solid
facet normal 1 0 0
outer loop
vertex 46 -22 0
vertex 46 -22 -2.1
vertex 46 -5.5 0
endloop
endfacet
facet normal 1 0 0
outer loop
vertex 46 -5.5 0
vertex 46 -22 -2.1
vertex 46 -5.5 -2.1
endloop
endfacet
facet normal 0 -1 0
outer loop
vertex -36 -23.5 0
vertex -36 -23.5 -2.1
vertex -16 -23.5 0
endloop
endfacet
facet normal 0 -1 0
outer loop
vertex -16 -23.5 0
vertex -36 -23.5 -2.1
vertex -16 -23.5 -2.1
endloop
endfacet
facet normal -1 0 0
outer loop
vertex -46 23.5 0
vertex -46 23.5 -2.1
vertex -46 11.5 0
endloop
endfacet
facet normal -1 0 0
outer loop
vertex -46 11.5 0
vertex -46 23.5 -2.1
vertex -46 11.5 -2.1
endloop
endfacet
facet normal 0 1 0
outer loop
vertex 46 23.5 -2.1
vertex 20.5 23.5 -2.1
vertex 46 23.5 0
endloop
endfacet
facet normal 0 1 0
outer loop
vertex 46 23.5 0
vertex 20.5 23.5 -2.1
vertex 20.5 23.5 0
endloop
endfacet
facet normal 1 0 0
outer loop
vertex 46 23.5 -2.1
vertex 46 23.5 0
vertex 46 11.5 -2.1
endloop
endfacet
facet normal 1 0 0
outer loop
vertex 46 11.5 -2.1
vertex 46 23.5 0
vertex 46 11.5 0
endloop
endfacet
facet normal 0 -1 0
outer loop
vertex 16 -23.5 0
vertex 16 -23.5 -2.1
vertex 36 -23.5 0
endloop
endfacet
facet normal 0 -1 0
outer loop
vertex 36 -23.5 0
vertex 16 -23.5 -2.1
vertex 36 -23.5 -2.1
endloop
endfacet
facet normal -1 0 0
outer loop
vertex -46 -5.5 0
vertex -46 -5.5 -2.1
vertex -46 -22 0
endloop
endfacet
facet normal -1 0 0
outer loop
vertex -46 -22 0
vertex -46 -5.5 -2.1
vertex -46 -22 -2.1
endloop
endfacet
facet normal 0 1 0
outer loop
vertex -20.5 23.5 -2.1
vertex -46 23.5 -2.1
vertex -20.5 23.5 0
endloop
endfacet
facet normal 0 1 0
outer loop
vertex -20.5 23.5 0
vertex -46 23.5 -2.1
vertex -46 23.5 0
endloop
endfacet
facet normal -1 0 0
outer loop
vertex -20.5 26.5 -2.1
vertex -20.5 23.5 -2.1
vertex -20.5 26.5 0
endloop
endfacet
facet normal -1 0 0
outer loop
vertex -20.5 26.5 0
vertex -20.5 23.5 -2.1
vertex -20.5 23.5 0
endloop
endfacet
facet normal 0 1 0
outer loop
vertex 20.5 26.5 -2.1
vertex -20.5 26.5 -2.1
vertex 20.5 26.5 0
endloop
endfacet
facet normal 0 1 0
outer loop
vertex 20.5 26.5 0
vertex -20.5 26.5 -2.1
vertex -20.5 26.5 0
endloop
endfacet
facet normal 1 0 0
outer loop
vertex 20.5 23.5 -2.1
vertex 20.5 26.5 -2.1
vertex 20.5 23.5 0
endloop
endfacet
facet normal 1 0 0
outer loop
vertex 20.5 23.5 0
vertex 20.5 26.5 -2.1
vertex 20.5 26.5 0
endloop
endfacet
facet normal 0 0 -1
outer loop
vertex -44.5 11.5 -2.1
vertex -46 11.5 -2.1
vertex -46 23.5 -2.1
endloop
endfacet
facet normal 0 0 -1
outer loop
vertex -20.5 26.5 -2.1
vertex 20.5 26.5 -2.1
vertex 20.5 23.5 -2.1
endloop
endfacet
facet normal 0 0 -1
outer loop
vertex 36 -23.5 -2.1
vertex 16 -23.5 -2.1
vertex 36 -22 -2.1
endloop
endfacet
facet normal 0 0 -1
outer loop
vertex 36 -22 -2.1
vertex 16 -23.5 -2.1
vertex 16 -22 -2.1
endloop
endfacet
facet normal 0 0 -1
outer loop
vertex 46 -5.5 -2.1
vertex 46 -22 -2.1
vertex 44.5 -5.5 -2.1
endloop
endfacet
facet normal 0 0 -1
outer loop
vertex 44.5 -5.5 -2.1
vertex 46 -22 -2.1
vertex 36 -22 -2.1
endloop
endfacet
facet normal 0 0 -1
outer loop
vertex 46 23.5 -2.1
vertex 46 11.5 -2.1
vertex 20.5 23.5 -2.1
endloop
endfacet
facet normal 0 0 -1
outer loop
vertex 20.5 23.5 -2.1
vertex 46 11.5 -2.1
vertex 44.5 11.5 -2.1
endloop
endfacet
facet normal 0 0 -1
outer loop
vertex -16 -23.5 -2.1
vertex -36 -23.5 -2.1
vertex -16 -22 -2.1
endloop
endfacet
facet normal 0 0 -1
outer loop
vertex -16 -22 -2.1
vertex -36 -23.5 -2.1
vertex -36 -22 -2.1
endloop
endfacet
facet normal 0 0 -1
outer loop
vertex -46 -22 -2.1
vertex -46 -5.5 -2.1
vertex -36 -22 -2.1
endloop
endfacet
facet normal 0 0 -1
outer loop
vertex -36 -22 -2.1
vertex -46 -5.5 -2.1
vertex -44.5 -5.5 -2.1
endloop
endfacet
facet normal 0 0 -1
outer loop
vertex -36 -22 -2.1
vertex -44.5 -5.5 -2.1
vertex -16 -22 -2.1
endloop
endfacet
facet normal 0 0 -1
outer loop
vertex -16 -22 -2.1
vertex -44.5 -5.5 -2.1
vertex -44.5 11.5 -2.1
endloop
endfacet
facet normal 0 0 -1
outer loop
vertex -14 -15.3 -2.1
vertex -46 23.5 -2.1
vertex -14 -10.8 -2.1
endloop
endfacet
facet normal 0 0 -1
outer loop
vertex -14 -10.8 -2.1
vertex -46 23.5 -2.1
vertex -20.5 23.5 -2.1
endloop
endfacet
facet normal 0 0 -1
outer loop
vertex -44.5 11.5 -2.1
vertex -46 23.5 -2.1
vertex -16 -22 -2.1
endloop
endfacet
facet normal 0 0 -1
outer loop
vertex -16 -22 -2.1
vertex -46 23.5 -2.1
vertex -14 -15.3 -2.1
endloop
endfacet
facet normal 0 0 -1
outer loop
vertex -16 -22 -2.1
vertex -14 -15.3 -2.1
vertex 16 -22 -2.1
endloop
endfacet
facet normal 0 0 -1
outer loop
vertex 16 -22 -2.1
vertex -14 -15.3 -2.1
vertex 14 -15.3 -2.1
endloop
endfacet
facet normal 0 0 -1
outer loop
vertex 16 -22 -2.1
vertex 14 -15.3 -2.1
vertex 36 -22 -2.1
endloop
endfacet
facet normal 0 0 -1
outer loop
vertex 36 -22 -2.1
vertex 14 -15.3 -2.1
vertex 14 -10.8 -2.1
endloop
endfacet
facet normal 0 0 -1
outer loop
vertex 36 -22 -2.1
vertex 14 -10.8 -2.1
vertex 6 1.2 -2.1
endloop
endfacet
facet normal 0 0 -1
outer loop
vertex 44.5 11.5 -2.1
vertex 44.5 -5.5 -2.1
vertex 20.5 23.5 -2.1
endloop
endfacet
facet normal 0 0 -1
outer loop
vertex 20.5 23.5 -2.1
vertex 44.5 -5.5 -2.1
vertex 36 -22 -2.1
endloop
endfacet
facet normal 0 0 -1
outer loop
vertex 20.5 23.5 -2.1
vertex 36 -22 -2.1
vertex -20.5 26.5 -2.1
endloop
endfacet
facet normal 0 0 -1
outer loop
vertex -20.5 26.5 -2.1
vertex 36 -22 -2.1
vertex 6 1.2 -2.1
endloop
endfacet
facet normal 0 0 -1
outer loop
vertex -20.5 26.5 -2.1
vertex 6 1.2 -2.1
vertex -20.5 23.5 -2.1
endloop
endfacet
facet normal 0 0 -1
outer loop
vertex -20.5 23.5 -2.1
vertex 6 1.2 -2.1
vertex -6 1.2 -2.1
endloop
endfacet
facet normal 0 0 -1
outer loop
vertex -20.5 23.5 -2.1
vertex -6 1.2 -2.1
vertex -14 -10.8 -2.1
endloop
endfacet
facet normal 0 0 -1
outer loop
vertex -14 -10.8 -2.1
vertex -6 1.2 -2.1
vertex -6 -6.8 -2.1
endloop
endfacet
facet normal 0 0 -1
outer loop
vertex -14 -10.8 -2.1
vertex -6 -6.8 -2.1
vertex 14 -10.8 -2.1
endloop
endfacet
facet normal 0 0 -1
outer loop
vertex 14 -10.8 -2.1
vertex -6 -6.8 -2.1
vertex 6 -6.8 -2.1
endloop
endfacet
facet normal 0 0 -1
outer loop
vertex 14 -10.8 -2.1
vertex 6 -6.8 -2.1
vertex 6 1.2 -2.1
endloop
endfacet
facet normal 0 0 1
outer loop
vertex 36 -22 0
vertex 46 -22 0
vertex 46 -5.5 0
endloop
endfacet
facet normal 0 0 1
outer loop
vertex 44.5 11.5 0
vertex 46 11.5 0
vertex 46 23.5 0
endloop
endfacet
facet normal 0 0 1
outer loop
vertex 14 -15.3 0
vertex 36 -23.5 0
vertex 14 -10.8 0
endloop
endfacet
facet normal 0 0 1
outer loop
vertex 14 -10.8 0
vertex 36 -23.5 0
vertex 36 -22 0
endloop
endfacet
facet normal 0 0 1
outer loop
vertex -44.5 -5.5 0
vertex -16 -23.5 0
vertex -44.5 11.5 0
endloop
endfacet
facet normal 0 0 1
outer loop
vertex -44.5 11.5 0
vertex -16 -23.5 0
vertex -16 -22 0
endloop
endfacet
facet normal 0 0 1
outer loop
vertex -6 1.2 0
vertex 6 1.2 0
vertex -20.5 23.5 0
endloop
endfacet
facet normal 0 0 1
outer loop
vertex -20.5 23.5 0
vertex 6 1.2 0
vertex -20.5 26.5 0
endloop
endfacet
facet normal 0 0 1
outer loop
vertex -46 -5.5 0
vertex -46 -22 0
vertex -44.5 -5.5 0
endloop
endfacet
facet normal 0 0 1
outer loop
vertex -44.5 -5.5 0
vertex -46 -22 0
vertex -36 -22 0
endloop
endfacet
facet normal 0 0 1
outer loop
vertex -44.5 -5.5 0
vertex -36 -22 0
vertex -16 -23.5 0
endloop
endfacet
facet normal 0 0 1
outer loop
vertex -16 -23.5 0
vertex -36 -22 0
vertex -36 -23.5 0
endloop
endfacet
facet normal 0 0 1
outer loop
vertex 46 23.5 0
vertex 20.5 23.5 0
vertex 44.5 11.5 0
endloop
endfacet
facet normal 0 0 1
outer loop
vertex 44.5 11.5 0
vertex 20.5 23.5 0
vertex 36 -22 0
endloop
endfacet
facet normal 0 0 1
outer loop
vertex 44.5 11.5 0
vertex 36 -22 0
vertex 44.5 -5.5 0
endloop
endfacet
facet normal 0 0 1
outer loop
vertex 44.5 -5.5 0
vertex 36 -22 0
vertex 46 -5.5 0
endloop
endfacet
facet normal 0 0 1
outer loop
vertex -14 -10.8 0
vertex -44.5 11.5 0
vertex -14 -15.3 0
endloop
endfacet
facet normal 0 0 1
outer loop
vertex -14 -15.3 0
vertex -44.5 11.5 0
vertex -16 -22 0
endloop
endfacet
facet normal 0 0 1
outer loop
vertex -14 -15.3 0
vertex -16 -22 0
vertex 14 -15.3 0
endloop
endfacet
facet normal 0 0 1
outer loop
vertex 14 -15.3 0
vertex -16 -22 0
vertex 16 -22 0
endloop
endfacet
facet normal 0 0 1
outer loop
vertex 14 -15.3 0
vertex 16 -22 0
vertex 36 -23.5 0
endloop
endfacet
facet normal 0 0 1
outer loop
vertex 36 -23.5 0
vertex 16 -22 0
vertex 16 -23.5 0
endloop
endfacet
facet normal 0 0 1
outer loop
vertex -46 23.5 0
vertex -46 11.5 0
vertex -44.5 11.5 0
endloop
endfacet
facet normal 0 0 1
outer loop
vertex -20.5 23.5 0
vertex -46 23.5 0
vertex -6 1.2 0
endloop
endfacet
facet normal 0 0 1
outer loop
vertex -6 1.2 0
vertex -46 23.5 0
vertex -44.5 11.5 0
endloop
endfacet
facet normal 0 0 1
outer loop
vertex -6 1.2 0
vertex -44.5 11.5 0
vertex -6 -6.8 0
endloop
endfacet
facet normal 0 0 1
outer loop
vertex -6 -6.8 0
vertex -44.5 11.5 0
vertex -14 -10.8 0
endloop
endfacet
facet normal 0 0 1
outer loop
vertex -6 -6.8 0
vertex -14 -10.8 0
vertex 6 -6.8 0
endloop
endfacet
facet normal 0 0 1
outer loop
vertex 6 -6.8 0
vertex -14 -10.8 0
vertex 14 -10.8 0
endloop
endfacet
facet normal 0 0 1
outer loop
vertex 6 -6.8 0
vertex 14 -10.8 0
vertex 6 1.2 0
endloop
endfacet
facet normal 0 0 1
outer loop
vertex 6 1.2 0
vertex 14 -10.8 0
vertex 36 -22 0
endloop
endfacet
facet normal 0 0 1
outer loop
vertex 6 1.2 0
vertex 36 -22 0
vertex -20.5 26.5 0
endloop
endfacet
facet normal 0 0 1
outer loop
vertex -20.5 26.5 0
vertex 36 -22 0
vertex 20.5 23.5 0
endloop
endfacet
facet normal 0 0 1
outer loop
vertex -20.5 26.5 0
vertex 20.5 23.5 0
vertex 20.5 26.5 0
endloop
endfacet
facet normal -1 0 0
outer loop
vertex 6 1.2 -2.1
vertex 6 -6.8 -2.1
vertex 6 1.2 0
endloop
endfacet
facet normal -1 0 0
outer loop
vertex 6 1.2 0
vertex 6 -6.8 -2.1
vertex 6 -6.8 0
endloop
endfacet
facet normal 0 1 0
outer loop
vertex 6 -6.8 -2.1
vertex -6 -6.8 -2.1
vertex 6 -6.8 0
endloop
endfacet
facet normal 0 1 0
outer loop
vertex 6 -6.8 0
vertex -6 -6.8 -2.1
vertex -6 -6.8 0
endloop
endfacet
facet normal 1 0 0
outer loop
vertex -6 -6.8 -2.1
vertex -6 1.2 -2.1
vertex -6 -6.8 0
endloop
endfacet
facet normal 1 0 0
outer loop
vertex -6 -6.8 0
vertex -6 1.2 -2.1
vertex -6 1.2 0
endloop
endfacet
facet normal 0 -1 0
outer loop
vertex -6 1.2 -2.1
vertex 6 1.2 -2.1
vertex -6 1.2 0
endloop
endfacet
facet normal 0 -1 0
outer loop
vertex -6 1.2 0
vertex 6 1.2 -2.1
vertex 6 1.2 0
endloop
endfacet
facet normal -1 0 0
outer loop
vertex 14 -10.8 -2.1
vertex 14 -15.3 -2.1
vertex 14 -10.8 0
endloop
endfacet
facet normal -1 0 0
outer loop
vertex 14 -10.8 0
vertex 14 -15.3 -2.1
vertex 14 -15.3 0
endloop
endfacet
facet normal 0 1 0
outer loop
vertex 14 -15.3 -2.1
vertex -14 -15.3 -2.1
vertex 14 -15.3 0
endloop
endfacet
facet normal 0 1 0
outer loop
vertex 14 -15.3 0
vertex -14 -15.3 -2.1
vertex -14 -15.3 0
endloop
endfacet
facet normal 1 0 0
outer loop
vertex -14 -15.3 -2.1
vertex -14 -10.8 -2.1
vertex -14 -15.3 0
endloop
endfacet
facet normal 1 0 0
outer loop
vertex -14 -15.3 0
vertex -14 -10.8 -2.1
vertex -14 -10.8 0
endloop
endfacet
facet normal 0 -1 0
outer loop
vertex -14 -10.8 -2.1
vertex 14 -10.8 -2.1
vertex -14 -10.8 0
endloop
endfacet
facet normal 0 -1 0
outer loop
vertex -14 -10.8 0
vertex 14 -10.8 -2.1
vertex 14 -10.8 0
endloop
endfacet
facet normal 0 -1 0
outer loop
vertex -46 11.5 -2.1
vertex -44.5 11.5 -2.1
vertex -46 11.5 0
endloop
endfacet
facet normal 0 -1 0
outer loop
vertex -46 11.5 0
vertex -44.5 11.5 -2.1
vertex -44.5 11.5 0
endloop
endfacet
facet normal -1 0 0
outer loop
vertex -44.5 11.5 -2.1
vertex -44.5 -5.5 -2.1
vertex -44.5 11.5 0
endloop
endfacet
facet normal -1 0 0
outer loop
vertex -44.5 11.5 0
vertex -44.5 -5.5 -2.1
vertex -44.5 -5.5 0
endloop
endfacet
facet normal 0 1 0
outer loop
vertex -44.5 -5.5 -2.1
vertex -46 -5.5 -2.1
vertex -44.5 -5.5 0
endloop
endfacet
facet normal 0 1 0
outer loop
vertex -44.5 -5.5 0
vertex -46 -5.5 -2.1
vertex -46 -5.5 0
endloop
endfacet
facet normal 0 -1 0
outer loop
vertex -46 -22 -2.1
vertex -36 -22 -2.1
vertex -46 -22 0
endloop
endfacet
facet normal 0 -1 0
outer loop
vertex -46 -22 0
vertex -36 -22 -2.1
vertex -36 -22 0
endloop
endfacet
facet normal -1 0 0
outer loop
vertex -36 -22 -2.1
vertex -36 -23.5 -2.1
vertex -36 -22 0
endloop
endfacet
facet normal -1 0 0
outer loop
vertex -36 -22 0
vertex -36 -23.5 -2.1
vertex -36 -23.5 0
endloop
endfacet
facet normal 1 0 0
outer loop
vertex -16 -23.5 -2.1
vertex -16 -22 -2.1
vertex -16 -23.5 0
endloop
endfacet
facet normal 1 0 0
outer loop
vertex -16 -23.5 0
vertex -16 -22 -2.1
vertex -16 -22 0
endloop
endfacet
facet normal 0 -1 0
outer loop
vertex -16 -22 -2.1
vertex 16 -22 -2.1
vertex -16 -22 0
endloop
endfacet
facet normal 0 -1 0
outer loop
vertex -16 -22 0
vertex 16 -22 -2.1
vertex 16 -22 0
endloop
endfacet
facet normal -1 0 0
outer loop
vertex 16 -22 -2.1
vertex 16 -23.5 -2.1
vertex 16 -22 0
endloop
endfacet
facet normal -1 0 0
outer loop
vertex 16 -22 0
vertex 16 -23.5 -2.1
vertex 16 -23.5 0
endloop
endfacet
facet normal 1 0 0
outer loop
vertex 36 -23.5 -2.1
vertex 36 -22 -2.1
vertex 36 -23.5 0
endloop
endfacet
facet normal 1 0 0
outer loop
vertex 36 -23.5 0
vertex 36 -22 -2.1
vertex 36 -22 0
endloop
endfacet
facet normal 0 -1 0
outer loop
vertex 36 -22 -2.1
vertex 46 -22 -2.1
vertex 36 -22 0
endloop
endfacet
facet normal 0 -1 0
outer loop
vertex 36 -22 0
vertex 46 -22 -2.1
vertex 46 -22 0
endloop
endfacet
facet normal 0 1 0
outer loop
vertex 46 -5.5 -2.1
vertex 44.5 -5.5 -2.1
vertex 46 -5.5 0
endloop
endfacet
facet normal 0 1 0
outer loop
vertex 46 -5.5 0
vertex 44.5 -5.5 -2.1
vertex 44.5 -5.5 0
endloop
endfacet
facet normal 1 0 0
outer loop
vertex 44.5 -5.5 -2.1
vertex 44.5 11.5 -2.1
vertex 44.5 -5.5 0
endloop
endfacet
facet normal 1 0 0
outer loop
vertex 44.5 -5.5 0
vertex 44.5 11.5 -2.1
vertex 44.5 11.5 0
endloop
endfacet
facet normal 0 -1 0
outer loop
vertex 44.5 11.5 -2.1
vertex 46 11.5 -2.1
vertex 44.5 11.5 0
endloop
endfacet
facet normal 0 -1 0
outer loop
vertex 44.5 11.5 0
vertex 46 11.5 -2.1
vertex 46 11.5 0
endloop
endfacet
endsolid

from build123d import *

# Parameters (mm, degrees)
BOSS_EXTRUDE1_DEPTH = 2.1
SKETCH2_W           = 28
SKETCH2_H           = 4.5
SKETCH2_W_2         = 12
SKETCH2_H_2         = 8
CUT_EXTRUDE2_DEPTH  = 54.128711635
SKETCH3_W           = 1.5
SKETCH3_H           = 17
SKETCH3_W_2         = 10
SKETCH3_H_2         = 1.5
SKETCH3_W_3         = 32
CUT_EXTRUDE3_DEPTH  = 54.128711635


with BuildPart() as part:
    # Sketch1 → Boss-Extrude1 (new body)
    with BuildSketch(Plane.XY):
        Polygon((-46, 23.5), (-20.5, 23.5), (-20.5, 26.5), (20.5, 26.5), (20.5, 23.5), (46, 23.5), (46, -23.5), (-46, -23.5), align=None)
    extrude(amount=-BOSS_EXTRUDE1_DEPTH)

    # Sketch2 → Cut-Extrude2 (cut, through all)
    with BuildSketch(Plane.XY):
        with Locations((0, -13.05)):
            Rectangle(SKETCH2_W, SKETCH2_H)
        with Locations((0, -2.8)):
            Rectangle(SKETCH2_W_2, SKETCH2_H_2)
    extrude(amount=-CUT_EXTRUDE2_DEPTH, mode=Mode.SUBTRACT)

    # Sketch3 → Cut-Extrude3 (cut, through all)
    with BuildSketch(Plane.XY):
        with Locations((-45.25, 3)):
            Rectangle(SKETCH3_W, SKETCH3_H)
        with Locations((-41, -22.75)):
            Rectangle(SKETCH3_W_2, SKETCH3_H_2)
        with Locations((0, -22.75)):
            Rectangle(SKETCH3_W_3, SKETCH3_H_2)
        with Locations((41, -22.75)):
            Rectangle(SKETCH3_W_2, SKETCH3_H_2)
        with Locations((45.25, 3)):
            Rectangle(SKETCH3_W, SKETCH3_H)
    extrude(amount=-CUT_EXTRUDE3_DEPTH, mode=Mode.SUBTRACT)


solid = part.part
